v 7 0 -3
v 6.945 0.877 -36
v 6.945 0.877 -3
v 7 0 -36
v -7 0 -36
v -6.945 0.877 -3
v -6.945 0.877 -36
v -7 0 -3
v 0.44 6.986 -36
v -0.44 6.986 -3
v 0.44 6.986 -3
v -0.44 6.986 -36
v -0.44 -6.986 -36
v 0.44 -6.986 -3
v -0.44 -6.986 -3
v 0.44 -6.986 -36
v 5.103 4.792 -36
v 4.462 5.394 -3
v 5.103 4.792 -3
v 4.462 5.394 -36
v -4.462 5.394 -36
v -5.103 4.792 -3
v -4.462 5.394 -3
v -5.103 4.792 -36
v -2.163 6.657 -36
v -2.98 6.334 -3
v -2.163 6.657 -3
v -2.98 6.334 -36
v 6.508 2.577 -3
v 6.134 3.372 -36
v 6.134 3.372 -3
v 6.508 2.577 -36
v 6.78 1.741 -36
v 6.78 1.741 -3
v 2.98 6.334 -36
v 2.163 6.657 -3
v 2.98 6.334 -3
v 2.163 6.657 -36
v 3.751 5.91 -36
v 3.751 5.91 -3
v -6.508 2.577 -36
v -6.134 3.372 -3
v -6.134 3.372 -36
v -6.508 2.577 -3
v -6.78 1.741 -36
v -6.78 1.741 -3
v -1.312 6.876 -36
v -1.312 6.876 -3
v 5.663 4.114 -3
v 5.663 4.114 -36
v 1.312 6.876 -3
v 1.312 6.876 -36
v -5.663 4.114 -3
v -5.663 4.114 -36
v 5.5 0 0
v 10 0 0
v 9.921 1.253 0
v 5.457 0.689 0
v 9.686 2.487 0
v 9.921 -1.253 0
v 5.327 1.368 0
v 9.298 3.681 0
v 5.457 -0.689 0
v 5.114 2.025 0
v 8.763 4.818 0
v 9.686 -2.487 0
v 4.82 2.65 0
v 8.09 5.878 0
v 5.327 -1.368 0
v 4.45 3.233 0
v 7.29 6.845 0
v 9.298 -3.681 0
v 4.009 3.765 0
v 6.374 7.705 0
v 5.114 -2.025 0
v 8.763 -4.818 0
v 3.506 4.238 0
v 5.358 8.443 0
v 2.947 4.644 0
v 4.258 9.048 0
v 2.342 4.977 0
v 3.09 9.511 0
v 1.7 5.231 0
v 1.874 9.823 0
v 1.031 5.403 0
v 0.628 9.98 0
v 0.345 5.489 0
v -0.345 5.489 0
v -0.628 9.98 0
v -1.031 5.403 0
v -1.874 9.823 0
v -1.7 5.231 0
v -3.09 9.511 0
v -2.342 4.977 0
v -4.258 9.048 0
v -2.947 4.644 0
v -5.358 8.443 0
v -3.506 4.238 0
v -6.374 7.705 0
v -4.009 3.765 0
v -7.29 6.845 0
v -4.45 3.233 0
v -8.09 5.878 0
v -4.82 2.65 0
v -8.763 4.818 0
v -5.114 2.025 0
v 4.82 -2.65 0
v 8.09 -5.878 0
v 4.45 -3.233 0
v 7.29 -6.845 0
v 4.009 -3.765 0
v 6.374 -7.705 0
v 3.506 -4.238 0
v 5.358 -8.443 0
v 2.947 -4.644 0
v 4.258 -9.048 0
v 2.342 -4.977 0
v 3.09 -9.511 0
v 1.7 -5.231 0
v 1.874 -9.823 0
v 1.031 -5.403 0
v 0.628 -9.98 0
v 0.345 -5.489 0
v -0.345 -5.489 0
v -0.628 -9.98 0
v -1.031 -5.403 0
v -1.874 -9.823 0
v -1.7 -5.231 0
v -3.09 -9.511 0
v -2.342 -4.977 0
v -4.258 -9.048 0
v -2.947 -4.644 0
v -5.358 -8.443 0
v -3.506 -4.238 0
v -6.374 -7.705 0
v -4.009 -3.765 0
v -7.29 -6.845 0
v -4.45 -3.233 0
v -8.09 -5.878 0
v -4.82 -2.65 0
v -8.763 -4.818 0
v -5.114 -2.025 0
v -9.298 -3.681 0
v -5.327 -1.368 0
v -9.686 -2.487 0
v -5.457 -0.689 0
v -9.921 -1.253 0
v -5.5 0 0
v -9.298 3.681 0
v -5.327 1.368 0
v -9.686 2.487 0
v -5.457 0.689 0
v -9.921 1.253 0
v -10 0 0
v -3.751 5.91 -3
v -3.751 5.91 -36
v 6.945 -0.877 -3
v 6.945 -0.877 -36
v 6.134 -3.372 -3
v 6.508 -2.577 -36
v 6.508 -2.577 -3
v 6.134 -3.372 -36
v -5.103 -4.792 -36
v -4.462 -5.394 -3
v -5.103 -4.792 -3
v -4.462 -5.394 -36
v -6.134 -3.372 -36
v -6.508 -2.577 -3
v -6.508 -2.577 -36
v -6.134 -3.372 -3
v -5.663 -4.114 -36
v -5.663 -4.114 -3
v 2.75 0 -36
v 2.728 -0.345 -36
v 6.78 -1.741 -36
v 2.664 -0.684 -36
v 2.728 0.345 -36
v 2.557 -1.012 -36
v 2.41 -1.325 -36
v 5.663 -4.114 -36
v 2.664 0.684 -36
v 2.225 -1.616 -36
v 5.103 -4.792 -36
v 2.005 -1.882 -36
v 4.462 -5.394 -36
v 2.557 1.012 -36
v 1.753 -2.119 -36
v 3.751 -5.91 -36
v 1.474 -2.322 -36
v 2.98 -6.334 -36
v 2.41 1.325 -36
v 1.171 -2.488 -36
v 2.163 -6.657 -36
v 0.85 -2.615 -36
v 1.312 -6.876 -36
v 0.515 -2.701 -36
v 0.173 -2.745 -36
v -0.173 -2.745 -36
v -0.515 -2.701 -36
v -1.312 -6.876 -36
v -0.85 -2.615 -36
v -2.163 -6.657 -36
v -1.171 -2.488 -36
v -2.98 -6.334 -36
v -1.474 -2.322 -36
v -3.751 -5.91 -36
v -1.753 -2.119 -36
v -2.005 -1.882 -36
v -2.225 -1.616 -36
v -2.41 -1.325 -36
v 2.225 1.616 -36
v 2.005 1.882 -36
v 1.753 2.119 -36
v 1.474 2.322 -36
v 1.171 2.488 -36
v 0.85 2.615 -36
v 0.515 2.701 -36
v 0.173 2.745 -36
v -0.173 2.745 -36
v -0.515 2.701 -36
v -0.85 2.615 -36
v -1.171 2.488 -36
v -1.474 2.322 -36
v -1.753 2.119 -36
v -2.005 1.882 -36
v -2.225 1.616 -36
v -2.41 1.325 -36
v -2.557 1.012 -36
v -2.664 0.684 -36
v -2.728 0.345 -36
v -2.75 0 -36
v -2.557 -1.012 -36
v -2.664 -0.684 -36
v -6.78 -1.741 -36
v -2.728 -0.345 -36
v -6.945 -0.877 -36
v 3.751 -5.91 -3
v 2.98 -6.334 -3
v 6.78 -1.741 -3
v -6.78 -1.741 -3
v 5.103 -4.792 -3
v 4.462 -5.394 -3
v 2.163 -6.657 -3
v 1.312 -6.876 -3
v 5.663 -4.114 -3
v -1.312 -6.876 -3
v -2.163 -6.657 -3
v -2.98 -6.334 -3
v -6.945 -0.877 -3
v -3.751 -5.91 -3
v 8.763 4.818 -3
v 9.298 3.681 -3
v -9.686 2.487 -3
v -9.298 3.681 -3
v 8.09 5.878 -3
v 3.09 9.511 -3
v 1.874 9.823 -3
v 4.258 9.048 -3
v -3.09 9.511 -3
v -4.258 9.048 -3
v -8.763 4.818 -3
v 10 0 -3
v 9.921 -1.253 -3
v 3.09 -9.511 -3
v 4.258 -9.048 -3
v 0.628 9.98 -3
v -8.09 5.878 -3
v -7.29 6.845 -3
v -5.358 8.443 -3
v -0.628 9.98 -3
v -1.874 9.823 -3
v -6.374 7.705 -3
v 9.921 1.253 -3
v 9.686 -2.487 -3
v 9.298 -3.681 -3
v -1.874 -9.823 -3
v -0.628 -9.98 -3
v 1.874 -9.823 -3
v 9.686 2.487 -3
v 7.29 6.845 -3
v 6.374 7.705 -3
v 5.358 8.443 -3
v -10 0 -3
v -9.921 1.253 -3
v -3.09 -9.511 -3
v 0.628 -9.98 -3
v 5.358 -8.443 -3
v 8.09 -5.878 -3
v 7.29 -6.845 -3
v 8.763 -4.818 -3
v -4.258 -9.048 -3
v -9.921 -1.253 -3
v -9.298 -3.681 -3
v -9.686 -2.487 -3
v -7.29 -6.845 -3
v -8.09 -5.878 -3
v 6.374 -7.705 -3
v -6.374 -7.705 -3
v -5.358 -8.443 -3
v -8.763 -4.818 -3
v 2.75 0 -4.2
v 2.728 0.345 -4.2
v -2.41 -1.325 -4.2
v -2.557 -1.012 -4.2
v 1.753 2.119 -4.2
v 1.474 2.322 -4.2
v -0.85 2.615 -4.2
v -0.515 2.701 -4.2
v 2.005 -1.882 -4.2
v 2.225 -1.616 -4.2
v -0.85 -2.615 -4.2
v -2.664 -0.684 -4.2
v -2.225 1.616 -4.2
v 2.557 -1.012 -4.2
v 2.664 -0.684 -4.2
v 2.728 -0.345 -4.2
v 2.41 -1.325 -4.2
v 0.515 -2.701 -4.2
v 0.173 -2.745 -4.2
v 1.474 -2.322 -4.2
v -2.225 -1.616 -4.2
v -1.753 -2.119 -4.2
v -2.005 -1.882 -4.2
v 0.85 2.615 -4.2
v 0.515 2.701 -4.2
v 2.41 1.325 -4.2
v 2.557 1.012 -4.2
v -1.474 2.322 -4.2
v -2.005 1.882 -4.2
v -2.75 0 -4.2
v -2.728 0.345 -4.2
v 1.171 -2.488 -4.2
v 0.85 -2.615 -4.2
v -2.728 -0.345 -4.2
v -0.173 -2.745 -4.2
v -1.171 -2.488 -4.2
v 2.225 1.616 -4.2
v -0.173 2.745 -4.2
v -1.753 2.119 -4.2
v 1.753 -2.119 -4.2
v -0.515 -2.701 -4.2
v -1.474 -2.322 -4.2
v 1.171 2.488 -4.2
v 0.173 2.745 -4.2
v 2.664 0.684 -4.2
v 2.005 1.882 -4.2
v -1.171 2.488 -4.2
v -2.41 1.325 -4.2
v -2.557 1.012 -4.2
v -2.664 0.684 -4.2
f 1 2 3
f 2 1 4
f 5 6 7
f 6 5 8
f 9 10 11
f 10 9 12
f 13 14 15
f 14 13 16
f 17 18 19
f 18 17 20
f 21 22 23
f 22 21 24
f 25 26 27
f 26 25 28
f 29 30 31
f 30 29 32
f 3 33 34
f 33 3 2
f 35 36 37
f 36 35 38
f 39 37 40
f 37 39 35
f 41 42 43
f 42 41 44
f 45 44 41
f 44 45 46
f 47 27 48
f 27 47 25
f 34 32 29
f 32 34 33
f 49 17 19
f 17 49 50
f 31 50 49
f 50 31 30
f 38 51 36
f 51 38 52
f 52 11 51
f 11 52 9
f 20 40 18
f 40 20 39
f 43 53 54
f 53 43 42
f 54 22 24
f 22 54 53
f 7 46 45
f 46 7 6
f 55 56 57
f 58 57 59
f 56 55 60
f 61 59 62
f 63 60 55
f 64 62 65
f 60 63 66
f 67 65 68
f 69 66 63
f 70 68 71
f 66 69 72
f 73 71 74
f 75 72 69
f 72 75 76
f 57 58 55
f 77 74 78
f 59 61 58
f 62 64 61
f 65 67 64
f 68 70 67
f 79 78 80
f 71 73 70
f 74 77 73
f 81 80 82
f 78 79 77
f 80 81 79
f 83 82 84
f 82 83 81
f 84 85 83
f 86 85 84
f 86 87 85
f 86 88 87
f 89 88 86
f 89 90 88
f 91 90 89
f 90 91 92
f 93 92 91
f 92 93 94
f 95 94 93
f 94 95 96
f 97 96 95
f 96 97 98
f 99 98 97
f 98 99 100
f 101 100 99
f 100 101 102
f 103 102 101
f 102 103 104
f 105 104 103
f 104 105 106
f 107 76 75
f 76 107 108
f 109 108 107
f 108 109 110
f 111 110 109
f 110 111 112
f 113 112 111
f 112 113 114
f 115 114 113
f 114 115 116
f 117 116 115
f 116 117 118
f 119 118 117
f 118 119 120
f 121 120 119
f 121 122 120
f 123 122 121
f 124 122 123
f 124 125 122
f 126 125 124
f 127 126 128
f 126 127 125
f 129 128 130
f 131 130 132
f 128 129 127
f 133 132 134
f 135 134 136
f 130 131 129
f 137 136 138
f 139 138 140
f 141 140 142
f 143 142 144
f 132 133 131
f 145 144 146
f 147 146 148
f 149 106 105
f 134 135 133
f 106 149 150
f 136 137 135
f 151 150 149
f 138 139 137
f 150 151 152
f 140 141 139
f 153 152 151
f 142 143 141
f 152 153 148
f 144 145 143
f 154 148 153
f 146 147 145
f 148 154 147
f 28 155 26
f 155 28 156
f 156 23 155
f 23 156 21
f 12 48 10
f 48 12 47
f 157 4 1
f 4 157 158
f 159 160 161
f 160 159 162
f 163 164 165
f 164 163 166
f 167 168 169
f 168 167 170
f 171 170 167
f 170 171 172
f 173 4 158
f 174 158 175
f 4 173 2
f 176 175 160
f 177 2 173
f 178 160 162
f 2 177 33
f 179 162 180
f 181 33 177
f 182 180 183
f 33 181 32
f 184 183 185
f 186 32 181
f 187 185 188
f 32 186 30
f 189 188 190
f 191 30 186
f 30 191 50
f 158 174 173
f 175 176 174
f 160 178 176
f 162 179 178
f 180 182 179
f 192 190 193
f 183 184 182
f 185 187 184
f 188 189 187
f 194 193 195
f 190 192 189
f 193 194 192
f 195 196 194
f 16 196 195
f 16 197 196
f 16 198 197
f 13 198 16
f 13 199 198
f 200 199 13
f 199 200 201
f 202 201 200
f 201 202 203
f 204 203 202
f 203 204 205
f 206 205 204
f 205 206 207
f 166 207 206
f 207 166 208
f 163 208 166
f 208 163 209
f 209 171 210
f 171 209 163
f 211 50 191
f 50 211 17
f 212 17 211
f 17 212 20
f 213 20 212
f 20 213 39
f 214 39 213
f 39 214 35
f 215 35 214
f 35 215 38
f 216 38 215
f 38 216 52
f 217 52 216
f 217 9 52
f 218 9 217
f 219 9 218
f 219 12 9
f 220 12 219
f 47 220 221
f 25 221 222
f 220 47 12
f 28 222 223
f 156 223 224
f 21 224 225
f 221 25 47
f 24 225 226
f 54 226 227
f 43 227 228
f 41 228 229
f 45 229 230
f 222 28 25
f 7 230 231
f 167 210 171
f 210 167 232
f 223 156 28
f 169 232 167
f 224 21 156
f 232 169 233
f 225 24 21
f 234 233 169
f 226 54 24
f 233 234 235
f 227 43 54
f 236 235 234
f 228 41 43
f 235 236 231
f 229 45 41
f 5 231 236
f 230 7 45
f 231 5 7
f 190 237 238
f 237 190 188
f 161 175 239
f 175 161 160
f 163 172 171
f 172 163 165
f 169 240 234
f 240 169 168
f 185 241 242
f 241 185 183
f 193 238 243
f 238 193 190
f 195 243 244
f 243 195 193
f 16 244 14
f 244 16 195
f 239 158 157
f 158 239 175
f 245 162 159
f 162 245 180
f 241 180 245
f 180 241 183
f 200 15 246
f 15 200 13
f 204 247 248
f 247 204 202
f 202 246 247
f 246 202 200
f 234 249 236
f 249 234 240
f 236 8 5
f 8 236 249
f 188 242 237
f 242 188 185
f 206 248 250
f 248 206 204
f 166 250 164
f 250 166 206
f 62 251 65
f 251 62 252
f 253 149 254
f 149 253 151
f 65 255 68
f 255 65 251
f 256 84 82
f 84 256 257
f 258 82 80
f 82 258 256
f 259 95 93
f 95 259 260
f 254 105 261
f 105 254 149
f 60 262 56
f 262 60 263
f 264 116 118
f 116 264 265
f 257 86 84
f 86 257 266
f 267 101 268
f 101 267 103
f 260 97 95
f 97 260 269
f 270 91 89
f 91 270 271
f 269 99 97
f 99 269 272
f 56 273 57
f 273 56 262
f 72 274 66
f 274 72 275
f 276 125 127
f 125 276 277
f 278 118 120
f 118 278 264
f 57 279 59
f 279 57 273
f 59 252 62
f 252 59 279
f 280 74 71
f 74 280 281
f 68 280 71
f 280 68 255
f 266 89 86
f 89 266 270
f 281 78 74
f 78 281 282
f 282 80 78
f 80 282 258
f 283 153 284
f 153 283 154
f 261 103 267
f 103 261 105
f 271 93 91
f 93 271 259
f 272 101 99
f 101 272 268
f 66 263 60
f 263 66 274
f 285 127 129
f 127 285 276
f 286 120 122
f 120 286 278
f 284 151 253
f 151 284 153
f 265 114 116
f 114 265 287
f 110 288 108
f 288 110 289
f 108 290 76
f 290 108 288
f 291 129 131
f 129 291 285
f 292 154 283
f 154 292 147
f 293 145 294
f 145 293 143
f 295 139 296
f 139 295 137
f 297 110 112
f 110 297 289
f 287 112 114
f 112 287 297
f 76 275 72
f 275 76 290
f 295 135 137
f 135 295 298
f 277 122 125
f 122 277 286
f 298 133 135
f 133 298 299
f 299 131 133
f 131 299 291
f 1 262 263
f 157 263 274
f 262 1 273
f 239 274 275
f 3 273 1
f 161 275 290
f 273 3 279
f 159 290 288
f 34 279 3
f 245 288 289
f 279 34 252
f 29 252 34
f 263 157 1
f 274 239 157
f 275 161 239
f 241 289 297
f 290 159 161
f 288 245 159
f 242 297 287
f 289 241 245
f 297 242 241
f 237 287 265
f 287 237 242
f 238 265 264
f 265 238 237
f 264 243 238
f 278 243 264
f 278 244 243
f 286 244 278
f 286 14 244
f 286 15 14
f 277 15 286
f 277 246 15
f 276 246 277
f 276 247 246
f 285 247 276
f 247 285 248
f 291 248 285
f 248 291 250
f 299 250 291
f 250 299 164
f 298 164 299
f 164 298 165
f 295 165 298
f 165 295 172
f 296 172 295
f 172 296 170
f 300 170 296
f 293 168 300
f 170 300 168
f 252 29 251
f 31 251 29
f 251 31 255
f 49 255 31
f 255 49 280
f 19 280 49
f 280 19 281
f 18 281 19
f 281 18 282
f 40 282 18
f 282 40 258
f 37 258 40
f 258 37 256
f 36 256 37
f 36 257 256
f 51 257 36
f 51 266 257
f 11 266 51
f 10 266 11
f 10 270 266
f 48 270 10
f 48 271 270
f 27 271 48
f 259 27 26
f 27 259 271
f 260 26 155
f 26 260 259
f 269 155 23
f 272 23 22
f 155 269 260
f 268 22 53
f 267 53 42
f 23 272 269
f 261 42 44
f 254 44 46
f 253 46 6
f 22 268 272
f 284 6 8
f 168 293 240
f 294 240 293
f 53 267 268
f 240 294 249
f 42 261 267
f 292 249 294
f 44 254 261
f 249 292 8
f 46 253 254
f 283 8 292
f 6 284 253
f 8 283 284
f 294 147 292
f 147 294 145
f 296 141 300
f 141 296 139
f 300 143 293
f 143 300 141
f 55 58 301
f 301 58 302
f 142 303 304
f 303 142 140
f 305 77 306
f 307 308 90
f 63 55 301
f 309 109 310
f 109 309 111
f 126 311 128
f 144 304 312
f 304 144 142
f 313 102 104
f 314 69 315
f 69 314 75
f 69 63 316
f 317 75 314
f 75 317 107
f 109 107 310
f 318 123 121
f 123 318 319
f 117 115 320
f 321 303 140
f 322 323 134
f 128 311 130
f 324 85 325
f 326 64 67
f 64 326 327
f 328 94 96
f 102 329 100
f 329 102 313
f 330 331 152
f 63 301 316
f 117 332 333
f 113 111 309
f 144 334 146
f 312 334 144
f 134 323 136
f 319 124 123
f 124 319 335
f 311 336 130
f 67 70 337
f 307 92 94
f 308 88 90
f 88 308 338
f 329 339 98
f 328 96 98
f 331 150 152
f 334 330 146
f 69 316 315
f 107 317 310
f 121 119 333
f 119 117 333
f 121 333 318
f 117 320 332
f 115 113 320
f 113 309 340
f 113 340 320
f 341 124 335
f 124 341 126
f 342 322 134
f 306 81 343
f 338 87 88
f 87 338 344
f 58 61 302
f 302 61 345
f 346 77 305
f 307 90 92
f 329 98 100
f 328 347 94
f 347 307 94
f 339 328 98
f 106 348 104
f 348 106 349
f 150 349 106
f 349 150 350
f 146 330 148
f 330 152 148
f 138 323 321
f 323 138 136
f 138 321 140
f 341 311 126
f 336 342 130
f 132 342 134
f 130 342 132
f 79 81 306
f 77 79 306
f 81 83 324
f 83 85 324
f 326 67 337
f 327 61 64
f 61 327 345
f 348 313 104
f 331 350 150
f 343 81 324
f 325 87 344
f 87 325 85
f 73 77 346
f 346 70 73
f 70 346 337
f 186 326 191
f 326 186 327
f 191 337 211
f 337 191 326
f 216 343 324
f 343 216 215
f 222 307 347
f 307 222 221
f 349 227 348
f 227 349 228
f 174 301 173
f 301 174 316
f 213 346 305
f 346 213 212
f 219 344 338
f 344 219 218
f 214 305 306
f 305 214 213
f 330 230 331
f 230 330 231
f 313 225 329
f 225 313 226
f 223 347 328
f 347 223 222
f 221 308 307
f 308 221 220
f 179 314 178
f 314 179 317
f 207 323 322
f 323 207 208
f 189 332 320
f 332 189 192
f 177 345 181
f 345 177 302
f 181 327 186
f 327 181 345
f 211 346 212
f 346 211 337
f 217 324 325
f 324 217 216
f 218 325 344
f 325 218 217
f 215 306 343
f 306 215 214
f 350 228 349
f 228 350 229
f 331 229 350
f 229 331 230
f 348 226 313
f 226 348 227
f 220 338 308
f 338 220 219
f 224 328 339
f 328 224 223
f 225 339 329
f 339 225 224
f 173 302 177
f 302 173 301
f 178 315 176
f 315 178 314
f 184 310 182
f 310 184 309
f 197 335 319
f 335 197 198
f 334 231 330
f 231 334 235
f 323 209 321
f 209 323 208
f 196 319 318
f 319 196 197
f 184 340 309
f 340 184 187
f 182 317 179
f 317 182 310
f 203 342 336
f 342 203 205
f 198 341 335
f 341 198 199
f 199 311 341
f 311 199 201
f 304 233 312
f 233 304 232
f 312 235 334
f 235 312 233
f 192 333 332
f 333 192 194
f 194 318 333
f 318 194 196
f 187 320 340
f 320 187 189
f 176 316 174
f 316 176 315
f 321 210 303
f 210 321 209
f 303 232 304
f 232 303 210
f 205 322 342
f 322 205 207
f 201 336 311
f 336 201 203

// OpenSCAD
$fn = 50;


difference() {
	union() {
		translate(v = [0, 0, -36.0000000000]) {
			cylinder(h = 36, r = 7.0000000000);
		}
		translate(v = [0, 0, -3.0000000000]) {
			cylinder(h = 3, r = 10.0000000000);
		}
	}
	union() {
		translate(v = [0, 0, 0]) {
			rotate(a = [0, 0, 0]) {
				difference() {
					union() {
						#translate(v = [0, 0, -36.0000000000]) {
							cylinder(h = 36, r = 2.2500000000);
						}
						#translate(v = [0, 0, -4.2000000000]) {
							cylinder(h = 4.2000000000, r = 7.0000000000, r1 = 2.7500000000, r2 = 5.5000000000);
						}
						#translate(v = [0, 0, -36.0000000000]) {
							cylinder(h = 36, r = 2.7500000000);
						}
						#translate(v = [0, 0, -36.0000000000]) {
							cylinder(h = 36, r = 2.2500000000);
						}
					}
					union();
				}
			}
		}
	}
}
